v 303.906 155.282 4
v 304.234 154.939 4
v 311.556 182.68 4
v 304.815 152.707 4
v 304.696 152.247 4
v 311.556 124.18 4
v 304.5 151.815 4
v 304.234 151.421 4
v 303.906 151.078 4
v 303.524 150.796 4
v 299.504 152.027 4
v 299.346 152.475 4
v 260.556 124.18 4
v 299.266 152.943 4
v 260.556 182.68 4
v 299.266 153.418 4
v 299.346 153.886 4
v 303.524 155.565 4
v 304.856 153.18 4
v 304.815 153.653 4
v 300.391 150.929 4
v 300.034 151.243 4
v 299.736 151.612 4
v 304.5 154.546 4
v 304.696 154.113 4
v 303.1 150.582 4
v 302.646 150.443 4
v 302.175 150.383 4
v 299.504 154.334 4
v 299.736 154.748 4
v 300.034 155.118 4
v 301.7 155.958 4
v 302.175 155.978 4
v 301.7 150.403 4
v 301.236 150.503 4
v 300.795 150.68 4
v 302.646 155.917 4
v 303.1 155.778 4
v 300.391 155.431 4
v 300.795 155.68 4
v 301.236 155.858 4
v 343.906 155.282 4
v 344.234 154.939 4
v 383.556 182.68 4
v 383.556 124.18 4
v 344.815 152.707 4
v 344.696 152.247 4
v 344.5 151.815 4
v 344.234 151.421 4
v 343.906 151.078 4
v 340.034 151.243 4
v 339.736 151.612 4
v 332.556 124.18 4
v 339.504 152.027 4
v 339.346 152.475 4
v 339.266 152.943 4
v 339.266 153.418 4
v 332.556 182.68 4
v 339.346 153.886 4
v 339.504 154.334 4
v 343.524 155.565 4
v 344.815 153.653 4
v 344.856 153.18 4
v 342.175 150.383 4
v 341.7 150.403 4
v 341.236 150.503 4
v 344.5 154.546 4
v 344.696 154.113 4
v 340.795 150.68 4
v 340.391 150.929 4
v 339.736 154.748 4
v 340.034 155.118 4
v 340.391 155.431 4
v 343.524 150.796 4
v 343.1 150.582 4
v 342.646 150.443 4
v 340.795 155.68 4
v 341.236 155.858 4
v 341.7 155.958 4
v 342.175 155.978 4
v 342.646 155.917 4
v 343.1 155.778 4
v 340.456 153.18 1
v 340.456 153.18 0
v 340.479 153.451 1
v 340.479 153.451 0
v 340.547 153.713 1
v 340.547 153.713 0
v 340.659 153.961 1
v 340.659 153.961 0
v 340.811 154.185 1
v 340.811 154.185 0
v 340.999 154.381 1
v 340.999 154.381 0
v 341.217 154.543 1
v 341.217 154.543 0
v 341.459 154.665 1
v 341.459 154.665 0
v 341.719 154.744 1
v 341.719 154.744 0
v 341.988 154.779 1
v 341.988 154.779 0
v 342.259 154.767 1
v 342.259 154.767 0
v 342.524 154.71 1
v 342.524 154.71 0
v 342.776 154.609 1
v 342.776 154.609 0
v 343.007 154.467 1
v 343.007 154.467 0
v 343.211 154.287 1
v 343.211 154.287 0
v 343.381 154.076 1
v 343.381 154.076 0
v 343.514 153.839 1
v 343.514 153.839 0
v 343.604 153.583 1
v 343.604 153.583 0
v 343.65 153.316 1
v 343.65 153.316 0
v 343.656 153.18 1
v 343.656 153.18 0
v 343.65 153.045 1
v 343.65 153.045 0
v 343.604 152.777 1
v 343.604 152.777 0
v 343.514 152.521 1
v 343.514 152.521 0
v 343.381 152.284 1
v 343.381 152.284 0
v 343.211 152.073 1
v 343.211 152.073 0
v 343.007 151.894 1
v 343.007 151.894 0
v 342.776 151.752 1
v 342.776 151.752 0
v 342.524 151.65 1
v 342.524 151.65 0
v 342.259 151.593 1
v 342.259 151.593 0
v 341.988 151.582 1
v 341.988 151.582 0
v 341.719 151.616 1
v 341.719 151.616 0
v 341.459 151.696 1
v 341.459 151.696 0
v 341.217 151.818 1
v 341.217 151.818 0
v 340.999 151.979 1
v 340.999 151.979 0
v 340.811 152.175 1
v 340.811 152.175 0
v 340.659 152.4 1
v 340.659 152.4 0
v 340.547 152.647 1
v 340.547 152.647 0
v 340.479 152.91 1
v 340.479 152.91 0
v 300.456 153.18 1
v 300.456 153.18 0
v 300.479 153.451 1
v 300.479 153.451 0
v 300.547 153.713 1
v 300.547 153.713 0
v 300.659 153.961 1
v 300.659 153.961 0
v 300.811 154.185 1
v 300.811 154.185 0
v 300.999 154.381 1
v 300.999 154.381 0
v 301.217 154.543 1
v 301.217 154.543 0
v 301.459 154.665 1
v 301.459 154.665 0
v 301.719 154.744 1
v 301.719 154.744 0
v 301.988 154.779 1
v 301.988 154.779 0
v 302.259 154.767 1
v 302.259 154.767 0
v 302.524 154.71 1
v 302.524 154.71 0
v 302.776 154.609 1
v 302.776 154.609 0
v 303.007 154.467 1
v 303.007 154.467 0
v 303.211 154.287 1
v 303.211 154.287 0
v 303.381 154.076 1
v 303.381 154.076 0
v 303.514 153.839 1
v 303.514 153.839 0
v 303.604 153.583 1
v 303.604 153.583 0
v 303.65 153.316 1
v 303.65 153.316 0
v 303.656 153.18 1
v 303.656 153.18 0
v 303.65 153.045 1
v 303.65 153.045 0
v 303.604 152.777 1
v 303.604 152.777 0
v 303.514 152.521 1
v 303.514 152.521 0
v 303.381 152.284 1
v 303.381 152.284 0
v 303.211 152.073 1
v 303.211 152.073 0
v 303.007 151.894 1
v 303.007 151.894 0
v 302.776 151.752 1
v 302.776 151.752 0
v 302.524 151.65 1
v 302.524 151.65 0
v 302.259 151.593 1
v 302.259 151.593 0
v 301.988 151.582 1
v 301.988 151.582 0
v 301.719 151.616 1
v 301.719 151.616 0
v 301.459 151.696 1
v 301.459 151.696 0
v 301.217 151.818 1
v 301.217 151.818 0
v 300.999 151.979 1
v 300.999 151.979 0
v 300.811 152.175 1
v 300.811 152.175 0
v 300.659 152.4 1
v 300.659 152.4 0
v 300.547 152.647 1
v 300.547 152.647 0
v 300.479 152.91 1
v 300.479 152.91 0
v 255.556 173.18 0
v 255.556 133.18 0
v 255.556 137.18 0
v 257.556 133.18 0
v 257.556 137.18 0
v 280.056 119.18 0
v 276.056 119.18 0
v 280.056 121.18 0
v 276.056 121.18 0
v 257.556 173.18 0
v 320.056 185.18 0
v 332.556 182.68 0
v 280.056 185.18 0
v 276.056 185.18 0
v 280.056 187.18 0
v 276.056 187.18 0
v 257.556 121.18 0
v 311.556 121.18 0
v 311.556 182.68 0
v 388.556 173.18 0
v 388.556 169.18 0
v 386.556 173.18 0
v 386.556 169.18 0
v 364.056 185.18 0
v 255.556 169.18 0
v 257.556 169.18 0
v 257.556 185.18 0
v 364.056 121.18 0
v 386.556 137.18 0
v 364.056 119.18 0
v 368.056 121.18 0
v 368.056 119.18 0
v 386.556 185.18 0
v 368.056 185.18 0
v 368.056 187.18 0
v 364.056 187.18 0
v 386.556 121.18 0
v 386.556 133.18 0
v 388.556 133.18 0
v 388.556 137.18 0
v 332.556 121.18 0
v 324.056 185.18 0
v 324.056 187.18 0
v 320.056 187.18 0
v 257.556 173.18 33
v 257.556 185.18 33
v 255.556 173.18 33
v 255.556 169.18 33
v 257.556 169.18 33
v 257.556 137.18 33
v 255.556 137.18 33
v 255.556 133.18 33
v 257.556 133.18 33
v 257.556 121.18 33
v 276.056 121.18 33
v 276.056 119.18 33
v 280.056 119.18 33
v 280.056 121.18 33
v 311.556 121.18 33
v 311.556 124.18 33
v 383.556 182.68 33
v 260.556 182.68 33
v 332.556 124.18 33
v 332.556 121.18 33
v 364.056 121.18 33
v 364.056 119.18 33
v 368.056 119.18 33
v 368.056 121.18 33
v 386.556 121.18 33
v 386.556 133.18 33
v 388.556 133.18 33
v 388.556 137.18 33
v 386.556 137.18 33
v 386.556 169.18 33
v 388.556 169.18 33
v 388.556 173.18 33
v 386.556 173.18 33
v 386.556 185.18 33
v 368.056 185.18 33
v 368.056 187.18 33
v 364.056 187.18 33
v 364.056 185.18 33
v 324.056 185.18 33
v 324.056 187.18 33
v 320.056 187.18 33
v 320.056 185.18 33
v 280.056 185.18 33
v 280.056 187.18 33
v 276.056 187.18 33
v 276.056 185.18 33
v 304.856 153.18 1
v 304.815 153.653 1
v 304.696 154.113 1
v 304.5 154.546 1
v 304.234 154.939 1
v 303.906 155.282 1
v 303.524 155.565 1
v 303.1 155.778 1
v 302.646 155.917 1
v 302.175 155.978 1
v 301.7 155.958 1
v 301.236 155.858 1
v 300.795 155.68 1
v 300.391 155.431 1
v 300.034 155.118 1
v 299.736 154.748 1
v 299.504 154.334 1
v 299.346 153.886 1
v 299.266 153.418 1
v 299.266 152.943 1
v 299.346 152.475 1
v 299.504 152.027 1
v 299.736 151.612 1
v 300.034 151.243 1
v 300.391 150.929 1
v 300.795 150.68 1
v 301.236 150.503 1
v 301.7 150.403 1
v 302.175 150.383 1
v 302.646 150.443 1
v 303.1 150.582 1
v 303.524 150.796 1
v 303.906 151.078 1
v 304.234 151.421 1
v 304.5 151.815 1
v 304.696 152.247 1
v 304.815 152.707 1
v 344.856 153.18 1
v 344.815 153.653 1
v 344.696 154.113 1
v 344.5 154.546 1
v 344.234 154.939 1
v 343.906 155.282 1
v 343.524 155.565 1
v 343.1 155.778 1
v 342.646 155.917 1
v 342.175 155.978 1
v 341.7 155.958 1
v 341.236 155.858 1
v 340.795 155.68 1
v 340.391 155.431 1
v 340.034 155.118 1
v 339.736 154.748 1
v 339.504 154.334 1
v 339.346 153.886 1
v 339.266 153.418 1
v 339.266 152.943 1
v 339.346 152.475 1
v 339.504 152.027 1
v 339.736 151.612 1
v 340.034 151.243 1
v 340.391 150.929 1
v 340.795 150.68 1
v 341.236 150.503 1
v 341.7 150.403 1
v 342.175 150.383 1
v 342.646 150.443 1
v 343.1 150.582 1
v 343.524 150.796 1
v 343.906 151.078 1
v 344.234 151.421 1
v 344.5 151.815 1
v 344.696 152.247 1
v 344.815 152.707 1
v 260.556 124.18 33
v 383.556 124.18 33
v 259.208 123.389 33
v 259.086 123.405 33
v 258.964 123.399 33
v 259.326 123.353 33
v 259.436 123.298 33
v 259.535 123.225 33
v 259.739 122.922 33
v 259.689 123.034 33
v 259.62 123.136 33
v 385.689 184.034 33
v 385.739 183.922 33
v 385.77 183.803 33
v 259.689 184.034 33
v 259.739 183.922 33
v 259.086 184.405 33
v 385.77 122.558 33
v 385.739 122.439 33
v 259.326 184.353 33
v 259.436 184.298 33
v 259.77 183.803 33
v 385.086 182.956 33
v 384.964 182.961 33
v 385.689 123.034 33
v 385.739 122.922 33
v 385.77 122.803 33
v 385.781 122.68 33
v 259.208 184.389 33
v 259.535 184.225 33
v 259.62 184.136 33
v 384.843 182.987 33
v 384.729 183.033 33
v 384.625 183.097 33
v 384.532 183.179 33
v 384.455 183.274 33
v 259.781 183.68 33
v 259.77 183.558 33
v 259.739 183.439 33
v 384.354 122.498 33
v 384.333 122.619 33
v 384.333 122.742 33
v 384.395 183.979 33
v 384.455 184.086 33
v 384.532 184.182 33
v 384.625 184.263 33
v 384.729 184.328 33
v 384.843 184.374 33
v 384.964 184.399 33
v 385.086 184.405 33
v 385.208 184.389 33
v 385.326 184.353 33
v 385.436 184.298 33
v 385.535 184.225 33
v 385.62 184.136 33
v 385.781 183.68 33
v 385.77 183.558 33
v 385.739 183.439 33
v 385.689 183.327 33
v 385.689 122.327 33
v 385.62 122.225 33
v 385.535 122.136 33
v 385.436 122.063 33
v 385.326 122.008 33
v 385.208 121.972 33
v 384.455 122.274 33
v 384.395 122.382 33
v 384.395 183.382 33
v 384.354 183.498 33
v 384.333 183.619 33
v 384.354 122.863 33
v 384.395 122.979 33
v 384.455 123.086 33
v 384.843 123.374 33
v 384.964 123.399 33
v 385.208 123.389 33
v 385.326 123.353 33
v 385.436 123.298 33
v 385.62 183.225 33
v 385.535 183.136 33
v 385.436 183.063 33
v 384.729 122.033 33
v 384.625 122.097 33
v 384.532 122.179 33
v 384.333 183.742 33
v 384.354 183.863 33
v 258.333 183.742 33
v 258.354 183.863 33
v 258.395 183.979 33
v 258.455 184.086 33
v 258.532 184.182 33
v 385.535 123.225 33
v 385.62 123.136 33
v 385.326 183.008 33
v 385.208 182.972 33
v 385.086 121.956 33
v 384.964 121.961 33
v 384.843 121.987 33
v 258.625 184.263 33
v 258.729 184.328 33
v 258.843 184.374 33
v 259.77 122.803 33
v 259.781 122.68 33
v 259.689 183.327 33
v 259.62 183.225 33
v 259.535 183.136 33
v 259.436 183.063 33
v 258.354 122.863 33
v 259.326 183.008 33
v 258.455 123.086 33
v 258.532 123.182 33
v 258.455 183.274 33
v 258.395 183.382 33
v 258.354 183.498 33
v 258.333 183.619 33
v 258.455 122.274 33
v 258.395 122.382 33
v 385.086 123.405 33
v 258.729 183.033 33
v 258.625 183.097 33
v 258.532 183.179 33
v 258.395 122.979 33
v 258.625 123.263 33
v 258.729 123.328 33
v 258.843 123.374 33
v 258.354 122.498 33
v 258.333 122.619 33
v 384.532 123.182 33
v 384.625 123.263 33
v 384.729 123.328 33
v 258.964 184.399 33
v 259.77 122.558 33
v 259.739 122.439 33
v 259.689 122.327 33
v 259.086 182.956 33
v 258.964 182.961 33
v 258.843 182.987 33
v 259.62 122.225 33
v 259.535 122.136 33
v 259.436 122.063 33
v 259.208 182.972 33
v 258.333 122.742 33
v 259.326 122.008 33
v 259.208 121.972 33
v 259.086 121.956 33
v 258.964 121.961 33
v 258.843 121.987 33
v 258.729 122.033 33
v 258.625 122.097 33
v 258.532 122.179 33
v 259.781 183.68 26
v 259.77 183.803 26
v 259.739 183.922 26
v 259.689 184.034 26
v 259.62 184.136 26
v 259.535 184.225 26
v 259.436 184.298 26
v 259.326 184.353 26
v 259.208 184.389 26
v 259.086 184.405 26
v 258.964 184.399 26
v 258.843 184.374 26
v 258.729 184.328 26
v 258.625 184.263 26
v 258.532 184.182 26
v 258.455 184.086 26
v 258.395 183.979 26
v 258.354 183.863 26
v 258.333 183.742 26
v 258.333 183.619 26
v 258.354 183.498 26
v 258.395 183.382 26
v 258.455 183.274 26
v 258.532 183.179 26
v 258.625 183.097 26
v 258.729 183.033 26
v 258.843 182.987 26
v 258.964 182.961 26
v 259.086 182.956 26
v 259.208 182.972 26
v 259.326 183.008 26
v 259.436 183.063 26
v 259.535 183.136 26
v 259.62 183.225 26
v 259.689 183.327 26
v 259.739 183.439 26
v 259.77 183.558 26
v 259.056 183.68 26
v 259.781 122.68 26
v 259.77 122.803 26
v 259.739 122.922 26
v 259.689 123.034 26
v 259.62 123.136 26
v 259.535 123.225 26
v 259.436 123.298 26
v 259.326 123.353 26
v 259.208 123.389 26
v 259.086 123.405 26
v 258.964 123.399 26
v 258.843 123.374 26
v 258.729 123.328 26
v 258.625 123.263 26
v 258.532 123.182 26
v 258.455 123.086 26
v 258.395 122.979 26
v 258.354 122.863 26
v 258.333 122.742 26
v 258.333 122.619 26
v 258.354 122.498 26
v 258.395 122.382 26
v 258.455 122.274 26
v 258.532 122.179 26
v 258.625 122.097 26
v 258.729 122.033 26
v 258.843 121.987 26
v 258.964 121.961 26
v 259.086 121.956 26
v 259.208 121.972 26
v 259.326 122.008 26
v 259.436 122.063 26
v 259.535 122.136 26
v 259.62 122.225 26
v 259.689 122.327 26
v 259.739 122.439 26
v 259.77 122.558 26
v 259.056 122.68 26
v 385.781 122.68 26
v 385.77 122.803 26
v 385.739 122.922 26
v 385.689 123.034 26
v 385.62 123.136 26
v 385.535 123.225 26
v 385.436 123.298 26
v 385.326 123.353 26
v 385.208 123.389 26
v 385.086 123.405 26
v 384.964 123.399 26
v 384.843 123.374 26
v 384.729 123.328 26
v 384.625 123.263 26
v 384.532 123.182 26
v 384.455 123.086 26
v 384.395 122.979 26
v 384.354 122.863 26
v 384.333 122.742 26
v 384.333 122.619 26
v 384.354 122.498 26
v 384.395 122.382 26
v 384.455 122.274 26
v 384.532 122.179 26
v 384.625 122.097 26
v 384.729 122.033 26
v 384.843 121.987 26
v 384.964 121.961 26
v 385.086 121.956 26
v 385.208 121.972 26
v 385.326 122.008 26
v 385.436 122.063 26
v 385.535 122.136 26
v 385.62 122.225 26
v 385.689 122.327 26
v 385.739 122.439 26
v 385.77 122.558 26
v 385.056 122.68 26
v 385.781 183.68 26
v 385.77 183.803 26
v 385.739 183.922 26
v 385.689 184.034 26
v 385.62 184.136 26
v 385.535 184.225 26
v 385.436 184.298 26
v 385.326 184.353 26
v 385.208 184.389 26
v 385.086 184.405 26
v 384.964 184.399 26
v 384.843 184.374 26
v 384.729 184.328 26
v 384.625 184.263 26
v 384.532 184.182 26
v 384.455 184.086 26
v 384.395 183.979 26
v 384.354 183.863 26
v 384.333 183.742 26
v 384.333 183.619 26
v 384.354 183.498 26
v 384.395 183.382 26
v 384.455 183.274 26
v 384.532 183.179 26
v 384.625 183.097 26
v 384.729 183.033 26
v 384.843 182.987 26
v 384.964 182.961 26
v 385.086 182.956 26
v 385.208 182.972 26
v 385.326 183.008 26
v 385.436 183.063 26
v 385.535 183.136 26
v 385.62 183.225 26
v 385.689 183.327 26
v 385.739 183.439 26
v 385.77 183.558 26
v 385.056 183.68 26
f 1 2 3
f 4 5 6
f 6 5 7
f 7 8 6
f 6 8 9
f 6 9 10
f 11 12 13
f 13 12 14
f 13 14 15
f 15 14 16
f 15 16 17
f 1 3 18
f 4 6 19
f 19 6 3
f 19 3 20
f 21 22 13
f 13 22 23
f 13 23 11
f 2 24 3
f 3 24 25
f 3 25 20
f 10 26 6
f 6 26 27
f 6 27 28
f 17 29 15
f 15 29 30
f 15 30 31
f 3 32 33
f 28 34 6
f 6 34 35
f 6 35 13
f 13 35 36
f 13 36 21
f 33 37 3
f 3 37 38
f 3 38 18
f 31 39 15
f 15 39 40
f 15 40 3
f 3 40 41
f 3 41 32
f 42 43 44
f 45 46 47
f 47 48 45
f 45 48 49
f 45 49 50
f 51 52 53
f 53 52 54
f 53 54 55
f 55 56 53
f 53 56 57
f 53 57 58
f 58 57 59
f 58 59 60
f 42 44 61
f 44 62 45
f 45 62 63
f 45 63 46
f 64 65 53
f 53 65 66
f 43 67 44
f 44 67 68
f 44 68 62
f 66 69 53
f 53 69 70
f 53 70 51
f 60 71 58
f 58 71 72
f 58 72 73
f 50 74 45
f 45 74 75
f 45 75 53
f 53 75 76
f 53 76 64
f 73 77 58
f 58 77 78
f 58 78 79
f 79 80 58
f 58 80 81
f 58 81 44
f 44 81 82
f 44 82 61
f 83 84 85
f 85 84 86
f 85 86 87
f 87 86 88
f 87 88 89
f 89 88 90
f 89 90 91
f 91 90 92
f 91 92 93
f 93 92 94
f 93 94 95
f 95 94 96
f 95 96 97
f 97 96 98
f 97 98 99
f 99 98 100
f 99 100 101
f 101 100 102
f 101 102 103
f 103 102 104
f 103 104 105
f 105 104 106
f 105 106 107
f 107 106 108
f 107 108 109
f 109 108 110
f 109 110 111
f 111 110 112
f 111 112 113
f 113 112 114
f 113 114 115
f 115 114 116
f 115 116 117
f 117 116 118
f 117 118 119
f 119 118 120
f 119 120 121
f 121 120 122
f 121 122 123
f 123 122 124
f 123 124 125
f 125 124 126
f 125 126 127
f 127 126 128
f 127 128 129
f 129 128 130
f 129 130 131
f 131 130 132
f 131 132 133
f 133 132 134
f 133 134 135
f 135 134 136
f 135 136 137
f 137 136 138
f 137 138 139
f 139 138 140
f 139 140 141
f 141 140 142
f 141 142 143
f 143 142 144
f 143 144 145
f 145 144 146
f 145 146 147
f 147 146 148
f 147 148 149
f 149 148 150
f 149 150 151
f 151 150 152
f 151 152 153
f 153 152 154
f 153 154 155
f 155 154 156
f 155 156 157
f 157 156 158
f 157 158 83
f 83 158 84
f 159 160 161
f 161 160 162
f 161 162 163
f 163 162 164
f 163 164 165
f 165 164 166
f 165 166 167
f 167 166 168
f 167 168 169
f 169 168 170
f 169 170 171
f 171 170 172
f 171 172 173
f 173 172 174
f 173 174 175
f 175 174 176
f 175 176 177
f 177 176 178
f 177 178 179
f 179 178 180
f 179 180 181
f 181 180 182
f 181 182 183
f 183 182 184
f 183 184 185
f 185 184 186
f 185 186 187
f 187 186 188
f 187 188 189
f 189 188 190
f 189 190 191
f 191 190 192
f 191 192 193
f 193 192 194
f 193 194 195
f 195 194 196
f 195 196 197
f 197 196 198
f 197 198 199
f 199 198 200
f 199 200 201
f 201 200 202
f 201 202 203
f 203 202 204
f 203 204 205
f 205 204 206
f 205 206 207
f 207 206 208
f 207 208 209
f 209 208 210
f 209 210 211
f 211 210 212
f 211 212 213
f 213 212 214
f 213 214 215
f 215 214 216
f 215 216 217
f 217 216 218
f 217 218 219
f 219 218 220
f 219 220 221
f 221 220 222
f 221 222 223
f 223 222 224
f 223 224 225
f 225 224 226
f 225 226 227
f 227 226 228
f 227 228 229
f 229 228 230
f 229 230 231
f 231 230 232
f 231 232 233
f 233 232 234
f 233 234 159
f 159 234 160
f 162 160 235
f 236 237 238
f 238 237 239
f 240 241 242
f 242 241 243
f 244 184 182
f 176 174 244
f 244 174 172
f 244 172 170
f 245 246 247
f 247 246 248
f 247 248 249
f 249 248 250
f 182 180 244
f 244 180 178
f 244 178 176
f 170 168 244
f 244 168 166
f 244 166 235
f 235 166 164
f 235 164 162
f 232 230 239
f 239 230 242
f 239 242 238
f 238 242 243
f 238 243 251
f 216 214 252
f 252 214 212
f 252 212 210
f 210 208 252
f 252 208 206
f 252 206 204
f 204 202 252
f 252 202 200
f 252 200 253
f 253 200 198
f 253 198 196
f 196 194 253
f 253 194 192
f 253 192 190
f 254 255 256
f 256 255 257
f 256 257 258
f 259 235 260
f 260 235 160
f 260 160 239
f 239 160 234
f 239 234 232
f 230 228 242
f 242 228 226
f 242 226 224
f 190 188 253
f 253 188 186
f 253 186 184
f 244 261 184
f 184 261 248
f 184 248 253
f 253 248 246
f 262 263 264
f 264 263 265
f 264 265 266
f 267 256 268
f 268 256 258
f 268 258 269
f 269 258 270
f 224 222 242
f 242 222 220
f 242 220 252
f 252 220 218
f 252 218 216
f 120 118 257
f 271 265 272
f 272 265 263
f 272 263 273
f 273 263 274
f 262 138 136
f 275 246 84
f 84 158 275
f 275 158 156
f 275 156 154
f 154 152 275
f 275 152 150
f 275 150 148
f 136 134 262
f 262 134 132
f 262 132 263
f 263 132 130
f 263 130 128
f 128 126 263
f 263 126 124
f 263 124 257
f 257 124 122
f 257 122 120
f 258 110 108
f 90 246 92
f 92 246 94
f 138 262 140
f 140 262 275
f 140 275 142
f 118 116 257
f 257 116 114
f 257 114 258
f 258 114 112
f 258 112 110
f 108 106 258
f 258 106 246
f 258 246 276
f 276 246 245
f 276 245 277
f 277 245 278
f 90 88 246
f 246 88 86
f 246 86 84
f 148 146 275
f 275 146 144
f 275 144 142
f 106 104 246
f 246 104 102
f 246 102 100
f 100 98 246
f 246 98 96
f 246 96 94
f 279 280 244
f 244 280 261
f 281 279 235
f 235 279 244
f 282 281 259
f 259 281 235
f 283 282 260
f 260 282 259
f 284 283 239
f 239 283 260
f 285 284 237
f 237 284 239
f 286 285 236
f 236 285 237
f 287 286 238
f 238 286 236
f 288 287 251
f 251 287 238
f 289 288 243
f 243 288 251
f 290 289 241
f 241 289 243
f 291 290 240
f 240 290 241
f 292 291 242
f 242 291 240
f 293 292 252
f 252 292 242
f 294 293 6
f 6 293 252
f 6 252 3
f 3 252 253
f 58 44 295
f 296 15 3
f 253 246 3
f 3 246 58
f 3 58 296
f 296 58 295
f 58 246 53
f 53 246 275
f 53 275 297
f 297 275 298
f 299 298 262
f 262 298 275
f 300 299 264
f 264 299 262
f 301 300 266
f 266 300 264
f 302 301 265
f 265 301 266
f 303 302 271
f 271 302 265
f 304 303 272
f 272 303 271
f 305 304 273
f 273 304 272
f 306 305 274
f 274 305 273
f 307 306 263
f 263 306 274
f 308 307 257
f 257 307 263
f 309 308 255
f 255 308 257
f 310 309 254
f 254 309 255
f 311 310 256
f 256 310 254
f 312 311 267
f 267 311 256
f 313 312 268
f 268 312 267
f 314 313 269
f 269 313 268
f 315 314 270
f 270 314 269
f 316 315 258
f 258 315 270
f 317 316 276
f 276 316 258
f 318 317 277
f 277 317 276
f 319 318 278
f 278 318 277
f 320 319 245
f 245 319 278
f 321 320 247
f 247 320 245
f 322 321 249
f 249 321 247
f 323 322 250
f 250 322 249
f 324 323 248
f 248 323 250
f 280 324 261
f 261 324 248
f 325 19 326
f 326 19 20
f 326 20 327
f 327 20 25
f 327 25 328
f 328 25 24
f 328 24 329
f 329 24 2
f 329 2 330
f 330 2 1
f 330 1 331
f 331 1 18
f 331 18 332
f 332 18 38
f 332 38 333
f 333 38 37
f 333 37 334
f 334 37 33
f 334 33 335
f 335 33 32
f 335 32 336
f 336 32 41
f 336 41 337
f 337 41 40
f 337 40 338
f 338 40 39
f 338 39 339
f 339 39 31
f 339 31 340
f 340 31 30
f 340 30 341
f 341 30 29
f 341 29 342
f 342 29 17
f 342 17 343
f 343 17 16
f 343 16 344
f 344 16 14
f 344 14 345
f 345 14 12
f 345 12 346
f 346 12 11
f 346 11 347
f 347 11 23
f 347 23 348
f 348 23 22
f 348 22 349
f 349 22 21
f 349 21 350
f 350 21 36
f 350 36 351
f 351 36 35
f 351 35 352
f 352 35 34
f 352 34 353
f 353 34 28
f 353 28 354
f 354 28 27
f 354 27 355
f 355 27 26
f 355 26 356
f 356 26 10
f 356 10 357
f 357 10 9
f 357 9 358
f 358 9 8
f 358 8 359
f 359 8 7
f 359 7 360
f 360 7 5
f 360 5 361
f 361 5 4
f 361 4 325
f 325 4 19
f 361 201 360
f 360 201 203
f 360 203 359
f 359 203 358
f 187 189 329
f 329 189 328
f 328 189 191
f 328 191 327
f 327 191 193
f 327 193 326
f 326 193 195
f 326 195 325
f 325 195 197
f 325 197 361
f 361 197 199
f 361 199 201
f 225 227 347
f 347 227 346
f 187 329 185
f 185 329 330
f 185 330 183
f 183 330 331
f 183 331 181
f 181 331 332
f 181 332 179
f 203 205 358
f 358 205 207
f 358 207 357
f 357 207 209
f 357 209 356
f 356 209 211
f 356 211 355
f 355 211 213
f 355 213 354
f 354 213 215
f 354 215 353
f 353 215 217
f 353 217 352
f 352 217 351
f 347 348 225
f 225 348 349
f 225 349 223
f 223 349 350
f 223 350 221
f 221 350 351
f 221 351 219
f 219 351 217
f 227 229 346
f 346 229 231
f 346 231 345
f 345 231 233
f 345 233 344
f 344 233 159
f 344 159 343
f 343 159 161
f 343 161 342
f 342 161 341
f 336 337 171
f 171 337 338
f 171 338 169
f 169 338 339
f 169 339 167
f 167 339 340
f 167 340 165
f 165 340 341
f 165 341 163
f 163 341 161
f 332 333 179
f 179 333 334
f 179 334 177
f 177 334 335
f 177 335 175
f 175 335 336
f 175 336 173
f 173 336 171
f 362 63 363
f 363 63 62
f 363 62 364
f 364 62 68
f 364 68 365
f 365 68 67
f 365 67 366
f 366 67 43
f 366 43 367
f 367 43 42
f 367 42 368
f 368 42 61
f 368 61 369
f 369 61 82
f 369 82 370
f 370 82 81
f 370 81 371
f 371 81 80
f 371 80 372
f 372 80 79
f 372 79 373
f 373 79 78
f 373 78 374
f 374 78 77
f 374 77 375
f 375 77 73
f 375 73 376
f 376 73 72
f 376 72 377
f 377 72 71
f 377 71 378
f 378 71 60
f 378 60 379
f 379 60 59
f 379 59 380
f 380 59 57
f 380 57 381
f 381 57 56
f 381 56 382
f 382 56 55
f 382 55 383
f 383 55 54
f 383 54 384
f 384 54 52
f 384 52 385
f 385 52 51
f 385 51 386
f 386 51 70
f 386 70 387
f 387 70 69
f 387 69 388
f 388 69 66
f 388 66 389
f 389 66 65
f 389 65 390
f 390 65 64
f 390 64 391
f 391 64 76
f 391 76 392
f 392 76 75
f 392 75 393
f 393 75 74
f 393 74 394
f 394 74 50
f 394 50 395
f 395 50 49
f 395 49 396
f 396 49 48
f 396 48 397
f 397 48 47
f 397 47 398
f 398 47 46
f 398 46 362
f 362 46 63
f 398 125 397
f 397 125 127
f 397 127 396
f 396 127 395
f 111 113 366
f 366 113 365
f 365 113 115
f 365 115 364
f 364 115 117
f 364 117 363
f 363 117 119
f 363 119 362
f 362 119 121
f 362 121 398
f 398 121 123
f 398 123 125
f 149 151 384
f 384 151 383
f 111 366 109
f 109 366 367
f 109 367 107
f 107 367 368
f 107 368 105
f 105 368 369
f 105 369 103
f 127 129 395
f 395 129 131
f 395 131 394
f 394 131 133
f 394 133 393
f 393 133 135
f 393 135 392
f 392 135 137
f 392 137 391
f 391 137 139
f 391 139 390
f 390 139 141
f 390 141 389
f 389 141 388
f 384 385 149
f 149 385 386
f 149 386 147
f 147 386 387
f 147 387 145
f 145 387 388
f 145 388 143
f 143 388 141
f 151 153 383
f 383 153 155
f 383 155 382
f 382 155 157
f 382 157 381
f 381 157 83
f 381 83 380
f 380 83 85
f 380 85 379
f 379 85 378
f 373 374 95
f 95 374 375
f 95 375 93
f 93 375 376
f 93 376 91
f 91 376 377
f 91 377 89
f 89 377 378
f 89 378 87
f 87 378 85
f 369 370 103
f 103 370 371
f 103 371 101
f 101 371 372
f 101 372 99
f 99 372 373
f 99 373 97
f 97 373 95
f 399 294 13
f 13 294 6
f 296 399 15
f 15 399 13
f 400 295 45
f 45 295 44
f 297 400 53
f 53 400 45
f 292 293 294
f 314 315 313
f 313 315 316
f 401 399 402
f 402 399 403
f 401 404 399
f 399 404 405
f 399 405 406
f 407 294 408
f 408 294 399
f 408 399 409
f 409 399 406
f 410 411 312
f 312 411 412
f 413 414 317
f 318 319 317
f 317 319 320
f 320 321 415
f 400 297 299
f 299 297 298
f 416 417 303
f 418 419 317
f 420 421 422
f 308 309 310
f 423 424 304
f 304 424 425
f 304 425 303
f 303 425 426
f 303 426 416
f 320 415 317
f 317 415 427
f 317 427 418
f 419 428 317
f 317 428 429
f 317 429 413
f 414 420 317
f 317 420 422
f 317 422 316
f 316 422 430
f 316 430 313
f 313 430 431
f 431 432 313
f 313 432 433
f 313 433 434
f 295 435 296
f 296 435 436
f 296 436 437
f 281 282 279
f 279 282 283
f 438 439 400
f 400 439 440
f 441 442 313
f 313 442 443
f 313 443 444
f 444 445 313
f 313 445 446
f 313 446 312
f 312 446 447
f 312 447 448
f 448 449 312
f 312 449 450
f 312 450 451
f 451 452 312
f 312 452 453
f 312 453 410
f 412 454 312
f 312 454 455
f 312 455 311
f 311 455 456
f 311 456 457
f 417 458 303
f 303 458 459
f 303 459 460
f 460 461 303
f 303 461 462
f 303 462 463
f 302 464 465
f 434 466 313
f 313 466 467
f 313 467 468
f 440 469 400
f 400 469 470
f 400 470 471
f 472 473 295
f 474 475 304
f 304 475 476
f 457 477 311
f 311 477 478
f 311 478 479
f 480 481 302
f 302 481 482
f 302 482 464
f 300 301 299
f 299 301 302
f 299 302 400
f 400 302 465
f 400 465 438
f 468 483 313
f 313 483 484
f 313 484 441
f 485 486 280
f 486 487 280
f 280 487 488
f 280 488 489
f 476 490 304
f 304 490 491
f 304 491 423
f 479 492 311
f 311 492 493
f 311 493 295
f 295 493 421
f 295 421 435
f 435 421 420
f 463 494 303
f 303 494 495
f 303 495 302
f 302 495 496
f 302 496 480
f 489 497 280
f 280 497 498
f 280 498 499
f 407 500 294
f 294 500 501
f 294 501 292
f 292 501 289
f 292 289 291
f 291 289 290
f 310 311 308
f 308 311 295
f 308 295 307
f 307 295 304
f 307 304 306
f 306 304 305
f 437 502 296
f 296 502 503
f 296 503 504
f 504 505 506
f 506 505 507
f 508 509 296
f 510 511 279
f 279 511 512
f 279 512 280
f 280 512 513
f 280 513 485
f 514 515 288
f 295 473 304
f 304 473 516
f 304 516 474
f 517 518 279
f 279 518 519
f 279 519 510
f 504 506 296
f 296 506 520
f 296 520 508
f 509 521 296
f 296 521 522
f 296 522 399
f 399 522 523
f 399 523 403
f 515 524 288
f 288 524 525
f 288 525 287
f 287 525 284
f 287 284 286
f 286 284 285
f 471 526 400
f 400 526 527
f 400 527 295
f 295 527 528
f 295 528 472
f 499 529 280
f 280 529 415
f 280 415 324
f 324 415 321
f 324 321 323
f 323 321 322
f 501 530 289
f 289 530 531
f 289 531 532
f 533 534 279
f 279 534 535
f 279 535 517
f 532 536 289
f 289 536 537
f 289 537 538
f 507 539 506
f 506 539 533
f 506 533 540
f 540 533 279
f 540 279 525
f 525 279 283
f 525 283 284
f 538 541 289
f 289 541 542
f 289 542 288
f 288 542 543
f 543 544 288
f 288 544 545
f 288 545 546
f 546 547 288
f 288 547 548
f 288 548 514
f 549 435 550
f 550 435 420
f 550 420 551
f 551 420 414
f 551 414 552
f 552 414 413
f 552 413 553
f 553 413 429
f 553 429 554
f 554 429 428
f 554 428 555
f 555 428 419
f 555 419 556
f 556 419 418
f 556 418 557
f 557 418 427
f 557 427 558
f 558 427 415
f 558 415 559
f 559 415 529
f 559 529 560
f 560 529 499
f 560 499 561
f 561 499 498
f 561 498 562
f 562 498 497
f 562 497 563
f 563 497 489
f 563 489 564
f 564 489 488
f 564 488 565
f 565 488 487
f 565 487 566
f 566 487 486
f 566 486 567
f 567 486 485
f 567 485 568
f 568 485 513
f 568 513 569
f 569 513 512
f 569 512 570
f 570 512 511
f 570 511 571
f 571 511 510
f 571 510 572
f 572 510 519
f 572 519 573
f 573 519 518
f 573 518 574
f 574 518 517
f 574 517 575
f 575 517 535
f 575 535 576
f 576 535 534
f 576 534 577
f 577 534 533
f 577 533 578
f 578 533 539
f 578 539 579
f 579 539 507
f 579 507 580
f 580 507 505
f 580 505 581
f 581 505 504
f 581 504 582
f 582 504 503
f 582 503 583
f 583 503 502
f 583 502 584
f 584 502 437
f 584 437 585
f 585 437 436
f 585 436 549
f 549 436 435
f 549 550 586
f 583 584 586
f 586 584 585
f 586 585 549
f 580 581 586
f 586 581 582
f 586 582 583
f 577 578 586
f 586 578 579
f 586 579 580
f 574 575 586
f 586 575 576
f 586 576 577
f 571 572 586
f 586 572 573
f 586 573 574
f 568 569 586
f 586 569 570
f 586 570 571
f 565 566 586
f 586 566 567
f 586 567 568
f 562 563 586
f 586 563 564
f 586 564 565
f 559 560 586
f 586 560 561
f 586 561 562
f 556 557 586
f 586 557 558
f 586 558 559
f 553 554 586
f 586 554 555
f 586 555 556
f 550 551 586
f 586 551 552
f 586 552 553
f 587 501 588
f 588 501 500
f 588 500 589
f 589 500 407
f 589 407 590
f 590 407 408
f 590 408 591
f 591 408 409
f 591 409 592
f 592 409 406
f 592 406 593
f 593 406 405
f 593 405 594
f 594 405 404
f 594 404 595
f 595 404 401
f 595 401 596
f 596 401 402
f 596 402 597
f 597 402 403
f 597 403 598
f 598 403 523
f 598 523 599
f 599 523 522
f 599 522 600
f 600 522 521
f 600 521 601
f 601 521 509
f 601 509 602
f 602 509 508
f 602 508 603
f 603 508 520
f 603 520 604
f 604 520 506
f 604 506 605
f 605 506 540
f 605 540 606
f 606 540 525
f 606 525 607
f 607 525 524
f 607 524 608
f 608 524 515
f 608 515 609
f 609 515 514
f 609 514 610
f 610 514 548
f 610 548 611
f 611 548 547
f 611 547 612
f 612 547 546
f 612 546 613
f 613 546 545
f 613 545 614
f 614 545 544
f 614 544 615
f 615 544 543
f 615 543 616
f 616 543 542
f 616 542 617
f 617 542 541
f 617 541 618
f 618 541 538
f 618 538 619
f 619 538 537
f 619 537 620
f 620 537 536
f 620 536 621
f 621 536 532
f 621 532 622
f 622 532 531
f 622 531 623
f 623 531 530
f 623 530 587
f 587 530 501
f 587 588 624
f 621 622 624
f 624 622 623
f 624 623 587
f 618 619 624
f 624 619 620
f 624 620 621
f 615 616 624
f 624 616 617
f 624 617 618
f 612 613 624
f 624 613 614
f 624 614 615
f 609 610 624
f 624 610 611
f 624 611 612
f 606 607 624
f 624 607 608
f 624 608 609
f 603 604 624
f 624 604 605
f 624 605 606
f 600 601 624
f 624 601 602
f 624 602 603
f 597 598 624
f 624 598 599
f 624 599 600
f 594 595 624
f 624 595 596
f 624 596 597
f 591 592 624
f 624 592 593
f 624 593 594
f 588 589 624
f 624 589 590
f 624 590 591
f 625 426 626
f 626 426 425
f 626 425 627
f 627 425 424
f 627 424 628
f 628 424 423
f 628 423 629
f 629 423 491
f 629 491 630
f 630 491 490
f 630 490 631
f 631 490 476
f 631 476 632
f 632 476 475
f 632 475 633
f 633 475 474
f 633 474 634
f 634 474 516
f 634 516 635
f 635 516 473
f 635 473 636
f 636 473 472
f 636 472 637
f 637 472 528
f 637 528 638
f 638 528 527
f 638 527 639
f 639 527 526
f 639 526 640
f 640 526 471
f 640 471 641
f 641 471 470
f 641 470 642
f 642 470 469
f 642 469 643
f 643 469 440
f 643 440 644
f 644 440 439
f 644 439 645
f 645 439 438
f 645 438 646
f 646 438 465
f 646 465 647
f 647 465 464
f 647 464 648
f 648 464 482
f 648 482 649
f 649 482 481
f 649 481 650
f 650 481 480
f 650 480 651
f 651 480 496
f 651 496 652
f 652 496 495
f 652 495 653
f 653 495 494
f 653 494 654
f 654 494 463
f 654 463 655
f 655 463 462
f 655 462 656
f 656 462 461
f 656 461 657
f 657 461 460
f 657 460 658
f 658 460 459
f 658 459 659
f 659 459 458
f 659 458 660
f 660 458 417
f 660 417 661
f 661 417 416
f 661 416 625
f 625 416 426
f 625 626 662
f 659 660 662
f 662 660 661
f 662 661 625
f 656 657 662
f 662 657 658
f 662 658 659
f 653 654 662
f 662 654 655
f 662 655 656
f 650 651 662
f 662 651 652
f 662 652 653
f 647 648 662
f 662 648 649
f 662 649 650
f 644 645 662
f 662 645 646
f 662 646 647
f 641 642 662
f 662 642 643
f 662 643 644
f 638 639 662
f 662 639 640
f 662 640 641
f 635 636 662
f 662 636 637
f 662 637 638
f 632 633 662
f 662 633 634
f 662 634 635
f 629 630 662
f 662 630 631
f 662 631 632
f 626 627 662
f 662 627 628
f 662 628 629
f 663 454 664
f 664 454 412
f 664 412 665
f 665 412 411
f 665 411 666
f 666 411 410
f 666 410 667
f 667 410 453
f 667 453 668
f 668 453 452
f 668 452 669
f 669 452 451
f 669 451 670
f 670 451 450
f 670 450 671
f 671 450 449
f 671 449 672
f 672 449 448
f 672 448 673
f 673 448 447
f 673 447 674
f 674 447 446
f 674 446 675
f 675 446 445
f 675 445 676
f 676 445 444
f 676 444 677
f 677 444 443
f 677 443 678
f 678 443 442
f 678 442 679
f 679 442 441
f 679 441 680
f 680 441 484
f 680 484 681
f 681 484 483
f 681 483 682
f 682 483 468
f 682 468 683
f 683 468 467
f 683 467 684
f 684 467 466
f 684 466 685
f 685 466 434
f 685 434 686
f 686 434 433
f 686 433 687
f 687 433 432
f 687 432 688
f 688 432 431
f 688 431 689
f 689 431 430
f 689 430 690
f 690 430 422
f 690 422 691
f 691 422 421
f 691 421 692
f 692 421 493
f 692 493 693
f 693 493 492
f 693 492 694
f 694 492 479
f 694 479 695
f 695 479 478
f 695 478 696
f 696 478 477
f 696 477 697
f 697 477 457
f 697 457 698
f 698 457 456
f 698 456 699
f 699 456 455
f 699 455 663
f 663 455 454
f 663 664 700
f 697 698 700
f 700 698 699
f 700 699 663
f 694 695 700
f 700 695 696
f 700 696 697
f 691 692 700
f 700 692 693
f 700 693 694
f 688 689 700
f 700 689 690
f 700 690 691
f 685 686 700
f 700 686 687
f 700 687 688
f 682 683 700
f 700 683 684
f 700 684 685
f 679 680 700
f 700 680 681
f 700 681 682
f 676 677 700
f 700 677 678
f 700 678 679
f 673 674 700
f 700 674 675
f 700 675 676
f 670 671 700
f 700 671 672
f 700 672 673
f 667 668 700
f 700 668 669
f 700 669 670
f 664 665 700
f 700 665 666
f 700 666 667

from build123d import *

# Parameters (mm, degrees)
MODEL_R             = 1.6
EXTRUDE_1_DEPTH     = 4
CUT_EXTRUDE_START   = -3
SKETCH_2_R          = 2.8
SKETCH_2_R_2        = 1.6
CUT_EXTRUDE_1_DEPTH = 3
EXTRUDE_2_DEPTH     = 29
SKETCH_6_R          = 0.725
CUT_EXTRUDE_2_DEPTH = 7


with BuildPart() as part:
    # Model → 凸台-拉伸1 (new body)
    with BuildSketch(Plane.XY):
        Polygon((257.555719115, 185.180286748), (276.055719115, 185.180286748), (276.055719115, 187.180286748), (280.055719115, 187.180286748), (280.055719115, 185.180286748), (320.055719115, 185.180286748), (320.055719115, 187.180286748), (324.055719115, 187.180286748), (324.055719115, 185.180286748), (364.055719115, 185.180286748), (364.055719115, 187.180286748), (368.055719115, 187.180286748), (368.055719115, 185.180286748), (386.555719115, 185.180286748), (386.555719115, 173.180286748), (388.555719115, 173.180286748), (388.555719115, 169.180286748), (386.555719115, 169.180286748), (386.555719115, 137.180286748), (388.555719115, 137.180286748), (388.555719115, 133.180286748), (386.555719115, 133.180286748), (386.555719115, 121.180286748), (368.055719115, 121.180286748), (368.055719115, 119.180286748), (364.055719115, 119.180286748), (364.055719115, 121.180286748), (332.555719115, 121.180286748), (332.555719115, 182.680286748), (311.555719115, 182.680286748), (311.555719115, 121.180286748), (280.055719115, 121.180286748), (280.055719115, 119.180286748), (276.055719115, 119.180286748), (276.055719115, 121.180286748), (257.555719115, 121.180286748), (257.555719115, 133.180286748), (255.555719115, 133.180286748), (255.555719115, 137.180286748), (257.555719115, 137.180286748), (257.555719115, 169.180286748), (255.555719115, 169.180286748), (255.555719115, 173.180286748), (257.555719115, 173.180286748), align=None)
        with Locations((342.055719115, 153.180286748)):
            Circle(MODEL_R, mode=Mode.SUBTRACT)
        with Locations((302.055719115, 153.180286748)):
            Circle(MODEL_R, mode=Mode.SUBTRACT)
    extrude(amount=EXTRUDE_1_DEPTH)

    # 草图2 → 切除-拉伸1 (cut)
    # profile 1 of 2: a face of its own
    with BuildSketch(Plane.XY.offset(4).offset(CUT_EXTRUDE_START)):
        with Locations((302.055719115, 153.180286748)):
            Circle(SKETCH_2_R)
        with Locations((302.055719115, 153.180286748)):
            Circle(SKETCH_2_R_2, mode=Mode.SUBTRACT)
    # profile 2 of 2: a face of its own
    with BuildSketch(Plane.XY.offset(4).offset(CUT_EXTRUDE_START)):
        with Locations((342.055719115, 153.180286748)):
            Circle(SKETCH_2_R)
        with Locations((342.055719115, 153.180286748)):
            Circle(SKETCH_2_R_2, mode=Mode.SUBTRACT)
    extrude(amount=CUT_EXTRUDE_1_DEPTH, mode=Mode.SUBTRACT)

    # 草图3 → 凸台-拉伸2 (add)
    with BuildSketch(Plane.XY.offset(4)):
        Polygon((260.555719115, 182.680286748), (260.555719115, 124.180286748), (311.555719115, 124.180286748), (311.555719115, 121.180286748), (280.055719115, 121.180286748), (280.055719115, 119.180286748), (276.055719115, 119.180286748), (276.055719115, 121.180286748), (257.555719115, 121.180286748), (257.555719115, 133.180286748), (255.555719115, 133.180286748), (255.555719115, 137.180286748), (257.555719115, 137.180286748), (257.555719115, 169.180286748), (255.555719115, 169.180286748), (255.555719115, 173.180286748), (257.555719115, 173.180286748), (257.555719115, 185.180286748), (276.055719115, 185.180286748), (276.055719115, 187.180286748), (280.055719115, 187.180286748), (280.055719115, 185.180286748), (320.055719115, 185.180286748), (320.055719115, 187.180286748), (324.055719115, 187.180286748), (324.055719115, 185.180286748), (364.055719115, 185.180286748), (364.055719115, 187.180286748), (368.055719115, 187.180286748), (368.055719115, 185.180286748), (386.555719115, 185.180286748), (386.555719115, 173.180286748), (388.555719115, 173.180286748), (388.555719115, 169.180286748), (386.555719115, 169.180286748), (386.555719115, 137.180286748), (388.555719115, 137.180286748), (388.555719115, 133.180286748), (386.555719115, 133.180286748), (386.555719115, 121.180286748), (368.055719115, 121.180286748), (368.055719115, 119.180286748), (364.055719115, 119.180286748), (364.055719115, 121.180286748), (332.555719115, 121.180286748), (332.555719115, 124.180286748), (383.555719115, 124.180286748), (383.555719115, 182.680286748), align=None)
    extrude(amount=EXTRUDE_2_DEPTH)

    # 草图6 → 切除-拉伸2 (cut)
    with BuildSketch(Plane.XY.offset(33)):
        with Locations((259.055719115, 183.680286748)):
            Circle(SKETCH_6_R)
        with Locations((385.055719115, 183.680286748)):
            Circle(SKETCH_6_R)
        with Locations((385.055719115, 122.680286748)):
            Circle(SKETCH_6_R)
        with Locations((259.055719115, 122.680286748)):
            Circle(SKETCH_6_R)
    extrude(amount=-CUT_EXTRUDE_2_DEPTH, mode=Mode.SUBTRACT)


solid = part.part
